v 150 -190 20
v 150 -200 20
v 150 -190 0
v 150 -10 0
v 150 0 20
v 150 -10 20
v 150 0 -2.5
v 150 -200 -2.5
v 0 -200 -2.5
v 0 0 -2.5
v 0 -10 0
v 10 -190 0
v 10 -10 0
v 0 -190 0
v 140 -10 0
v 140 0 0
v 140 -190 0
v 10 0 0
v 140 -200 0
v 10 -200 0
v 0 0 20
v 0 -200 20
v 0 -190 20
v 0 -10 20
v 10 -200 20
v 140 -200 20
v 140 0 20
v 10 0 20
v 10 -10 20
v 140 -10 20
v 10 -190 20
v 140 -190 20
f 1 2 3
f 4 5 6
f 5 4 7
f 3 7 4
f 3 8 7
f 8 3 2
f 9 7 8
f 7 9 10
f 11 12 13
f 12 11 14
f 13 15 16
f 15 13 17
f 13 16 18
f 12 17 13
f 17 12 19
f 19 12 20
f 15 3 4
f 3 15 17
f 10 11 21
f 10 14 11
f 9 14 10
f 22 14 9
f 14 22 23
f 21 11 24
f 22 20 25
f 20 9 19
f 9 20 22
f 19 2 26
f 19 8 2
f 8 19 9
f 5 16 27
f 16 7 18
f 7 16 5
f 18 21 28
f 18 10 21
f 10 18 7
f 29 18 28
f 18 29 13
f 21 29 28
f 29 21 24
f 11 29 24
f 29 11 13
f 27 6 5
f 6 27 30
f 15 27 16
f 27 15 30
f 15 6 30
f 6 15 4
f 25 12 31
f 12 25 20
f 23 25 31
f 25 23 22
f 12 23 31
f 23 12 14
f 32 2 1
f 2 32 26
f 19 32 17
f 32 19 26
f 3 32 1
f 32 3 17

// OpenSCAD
// Parameters
table_width = 150;
table_length = 200;
table_thickness = 2.5;
leg_height = 20;
leg_thickness = 10
;  // Thickness of legs (square cross-section)

// Flip the whole model upside down
rotate([180, 0, 0]) {
    // Tabletop
    cube([table_width, table_length, table_thickness]);

    // Legs
    translate([0, 0, -leg_height])
        cube([leg_thickness, leg_thickness, leg_height]);

    translate([table_width - leg_thickness, 0, -leg_height])
        cube([leg_thickness, leg_thickness, leg_height]);

    translate([0, table_length - leg_thickness, -leg_height])
        cube([leg_thickness, leg_thickness, leg_height]);

    translate([table_width - leg_thickness, table_length - leg_thickness, -leg_height])
        cube([leg_thickness, leg_thickness, leg_height]);
}
